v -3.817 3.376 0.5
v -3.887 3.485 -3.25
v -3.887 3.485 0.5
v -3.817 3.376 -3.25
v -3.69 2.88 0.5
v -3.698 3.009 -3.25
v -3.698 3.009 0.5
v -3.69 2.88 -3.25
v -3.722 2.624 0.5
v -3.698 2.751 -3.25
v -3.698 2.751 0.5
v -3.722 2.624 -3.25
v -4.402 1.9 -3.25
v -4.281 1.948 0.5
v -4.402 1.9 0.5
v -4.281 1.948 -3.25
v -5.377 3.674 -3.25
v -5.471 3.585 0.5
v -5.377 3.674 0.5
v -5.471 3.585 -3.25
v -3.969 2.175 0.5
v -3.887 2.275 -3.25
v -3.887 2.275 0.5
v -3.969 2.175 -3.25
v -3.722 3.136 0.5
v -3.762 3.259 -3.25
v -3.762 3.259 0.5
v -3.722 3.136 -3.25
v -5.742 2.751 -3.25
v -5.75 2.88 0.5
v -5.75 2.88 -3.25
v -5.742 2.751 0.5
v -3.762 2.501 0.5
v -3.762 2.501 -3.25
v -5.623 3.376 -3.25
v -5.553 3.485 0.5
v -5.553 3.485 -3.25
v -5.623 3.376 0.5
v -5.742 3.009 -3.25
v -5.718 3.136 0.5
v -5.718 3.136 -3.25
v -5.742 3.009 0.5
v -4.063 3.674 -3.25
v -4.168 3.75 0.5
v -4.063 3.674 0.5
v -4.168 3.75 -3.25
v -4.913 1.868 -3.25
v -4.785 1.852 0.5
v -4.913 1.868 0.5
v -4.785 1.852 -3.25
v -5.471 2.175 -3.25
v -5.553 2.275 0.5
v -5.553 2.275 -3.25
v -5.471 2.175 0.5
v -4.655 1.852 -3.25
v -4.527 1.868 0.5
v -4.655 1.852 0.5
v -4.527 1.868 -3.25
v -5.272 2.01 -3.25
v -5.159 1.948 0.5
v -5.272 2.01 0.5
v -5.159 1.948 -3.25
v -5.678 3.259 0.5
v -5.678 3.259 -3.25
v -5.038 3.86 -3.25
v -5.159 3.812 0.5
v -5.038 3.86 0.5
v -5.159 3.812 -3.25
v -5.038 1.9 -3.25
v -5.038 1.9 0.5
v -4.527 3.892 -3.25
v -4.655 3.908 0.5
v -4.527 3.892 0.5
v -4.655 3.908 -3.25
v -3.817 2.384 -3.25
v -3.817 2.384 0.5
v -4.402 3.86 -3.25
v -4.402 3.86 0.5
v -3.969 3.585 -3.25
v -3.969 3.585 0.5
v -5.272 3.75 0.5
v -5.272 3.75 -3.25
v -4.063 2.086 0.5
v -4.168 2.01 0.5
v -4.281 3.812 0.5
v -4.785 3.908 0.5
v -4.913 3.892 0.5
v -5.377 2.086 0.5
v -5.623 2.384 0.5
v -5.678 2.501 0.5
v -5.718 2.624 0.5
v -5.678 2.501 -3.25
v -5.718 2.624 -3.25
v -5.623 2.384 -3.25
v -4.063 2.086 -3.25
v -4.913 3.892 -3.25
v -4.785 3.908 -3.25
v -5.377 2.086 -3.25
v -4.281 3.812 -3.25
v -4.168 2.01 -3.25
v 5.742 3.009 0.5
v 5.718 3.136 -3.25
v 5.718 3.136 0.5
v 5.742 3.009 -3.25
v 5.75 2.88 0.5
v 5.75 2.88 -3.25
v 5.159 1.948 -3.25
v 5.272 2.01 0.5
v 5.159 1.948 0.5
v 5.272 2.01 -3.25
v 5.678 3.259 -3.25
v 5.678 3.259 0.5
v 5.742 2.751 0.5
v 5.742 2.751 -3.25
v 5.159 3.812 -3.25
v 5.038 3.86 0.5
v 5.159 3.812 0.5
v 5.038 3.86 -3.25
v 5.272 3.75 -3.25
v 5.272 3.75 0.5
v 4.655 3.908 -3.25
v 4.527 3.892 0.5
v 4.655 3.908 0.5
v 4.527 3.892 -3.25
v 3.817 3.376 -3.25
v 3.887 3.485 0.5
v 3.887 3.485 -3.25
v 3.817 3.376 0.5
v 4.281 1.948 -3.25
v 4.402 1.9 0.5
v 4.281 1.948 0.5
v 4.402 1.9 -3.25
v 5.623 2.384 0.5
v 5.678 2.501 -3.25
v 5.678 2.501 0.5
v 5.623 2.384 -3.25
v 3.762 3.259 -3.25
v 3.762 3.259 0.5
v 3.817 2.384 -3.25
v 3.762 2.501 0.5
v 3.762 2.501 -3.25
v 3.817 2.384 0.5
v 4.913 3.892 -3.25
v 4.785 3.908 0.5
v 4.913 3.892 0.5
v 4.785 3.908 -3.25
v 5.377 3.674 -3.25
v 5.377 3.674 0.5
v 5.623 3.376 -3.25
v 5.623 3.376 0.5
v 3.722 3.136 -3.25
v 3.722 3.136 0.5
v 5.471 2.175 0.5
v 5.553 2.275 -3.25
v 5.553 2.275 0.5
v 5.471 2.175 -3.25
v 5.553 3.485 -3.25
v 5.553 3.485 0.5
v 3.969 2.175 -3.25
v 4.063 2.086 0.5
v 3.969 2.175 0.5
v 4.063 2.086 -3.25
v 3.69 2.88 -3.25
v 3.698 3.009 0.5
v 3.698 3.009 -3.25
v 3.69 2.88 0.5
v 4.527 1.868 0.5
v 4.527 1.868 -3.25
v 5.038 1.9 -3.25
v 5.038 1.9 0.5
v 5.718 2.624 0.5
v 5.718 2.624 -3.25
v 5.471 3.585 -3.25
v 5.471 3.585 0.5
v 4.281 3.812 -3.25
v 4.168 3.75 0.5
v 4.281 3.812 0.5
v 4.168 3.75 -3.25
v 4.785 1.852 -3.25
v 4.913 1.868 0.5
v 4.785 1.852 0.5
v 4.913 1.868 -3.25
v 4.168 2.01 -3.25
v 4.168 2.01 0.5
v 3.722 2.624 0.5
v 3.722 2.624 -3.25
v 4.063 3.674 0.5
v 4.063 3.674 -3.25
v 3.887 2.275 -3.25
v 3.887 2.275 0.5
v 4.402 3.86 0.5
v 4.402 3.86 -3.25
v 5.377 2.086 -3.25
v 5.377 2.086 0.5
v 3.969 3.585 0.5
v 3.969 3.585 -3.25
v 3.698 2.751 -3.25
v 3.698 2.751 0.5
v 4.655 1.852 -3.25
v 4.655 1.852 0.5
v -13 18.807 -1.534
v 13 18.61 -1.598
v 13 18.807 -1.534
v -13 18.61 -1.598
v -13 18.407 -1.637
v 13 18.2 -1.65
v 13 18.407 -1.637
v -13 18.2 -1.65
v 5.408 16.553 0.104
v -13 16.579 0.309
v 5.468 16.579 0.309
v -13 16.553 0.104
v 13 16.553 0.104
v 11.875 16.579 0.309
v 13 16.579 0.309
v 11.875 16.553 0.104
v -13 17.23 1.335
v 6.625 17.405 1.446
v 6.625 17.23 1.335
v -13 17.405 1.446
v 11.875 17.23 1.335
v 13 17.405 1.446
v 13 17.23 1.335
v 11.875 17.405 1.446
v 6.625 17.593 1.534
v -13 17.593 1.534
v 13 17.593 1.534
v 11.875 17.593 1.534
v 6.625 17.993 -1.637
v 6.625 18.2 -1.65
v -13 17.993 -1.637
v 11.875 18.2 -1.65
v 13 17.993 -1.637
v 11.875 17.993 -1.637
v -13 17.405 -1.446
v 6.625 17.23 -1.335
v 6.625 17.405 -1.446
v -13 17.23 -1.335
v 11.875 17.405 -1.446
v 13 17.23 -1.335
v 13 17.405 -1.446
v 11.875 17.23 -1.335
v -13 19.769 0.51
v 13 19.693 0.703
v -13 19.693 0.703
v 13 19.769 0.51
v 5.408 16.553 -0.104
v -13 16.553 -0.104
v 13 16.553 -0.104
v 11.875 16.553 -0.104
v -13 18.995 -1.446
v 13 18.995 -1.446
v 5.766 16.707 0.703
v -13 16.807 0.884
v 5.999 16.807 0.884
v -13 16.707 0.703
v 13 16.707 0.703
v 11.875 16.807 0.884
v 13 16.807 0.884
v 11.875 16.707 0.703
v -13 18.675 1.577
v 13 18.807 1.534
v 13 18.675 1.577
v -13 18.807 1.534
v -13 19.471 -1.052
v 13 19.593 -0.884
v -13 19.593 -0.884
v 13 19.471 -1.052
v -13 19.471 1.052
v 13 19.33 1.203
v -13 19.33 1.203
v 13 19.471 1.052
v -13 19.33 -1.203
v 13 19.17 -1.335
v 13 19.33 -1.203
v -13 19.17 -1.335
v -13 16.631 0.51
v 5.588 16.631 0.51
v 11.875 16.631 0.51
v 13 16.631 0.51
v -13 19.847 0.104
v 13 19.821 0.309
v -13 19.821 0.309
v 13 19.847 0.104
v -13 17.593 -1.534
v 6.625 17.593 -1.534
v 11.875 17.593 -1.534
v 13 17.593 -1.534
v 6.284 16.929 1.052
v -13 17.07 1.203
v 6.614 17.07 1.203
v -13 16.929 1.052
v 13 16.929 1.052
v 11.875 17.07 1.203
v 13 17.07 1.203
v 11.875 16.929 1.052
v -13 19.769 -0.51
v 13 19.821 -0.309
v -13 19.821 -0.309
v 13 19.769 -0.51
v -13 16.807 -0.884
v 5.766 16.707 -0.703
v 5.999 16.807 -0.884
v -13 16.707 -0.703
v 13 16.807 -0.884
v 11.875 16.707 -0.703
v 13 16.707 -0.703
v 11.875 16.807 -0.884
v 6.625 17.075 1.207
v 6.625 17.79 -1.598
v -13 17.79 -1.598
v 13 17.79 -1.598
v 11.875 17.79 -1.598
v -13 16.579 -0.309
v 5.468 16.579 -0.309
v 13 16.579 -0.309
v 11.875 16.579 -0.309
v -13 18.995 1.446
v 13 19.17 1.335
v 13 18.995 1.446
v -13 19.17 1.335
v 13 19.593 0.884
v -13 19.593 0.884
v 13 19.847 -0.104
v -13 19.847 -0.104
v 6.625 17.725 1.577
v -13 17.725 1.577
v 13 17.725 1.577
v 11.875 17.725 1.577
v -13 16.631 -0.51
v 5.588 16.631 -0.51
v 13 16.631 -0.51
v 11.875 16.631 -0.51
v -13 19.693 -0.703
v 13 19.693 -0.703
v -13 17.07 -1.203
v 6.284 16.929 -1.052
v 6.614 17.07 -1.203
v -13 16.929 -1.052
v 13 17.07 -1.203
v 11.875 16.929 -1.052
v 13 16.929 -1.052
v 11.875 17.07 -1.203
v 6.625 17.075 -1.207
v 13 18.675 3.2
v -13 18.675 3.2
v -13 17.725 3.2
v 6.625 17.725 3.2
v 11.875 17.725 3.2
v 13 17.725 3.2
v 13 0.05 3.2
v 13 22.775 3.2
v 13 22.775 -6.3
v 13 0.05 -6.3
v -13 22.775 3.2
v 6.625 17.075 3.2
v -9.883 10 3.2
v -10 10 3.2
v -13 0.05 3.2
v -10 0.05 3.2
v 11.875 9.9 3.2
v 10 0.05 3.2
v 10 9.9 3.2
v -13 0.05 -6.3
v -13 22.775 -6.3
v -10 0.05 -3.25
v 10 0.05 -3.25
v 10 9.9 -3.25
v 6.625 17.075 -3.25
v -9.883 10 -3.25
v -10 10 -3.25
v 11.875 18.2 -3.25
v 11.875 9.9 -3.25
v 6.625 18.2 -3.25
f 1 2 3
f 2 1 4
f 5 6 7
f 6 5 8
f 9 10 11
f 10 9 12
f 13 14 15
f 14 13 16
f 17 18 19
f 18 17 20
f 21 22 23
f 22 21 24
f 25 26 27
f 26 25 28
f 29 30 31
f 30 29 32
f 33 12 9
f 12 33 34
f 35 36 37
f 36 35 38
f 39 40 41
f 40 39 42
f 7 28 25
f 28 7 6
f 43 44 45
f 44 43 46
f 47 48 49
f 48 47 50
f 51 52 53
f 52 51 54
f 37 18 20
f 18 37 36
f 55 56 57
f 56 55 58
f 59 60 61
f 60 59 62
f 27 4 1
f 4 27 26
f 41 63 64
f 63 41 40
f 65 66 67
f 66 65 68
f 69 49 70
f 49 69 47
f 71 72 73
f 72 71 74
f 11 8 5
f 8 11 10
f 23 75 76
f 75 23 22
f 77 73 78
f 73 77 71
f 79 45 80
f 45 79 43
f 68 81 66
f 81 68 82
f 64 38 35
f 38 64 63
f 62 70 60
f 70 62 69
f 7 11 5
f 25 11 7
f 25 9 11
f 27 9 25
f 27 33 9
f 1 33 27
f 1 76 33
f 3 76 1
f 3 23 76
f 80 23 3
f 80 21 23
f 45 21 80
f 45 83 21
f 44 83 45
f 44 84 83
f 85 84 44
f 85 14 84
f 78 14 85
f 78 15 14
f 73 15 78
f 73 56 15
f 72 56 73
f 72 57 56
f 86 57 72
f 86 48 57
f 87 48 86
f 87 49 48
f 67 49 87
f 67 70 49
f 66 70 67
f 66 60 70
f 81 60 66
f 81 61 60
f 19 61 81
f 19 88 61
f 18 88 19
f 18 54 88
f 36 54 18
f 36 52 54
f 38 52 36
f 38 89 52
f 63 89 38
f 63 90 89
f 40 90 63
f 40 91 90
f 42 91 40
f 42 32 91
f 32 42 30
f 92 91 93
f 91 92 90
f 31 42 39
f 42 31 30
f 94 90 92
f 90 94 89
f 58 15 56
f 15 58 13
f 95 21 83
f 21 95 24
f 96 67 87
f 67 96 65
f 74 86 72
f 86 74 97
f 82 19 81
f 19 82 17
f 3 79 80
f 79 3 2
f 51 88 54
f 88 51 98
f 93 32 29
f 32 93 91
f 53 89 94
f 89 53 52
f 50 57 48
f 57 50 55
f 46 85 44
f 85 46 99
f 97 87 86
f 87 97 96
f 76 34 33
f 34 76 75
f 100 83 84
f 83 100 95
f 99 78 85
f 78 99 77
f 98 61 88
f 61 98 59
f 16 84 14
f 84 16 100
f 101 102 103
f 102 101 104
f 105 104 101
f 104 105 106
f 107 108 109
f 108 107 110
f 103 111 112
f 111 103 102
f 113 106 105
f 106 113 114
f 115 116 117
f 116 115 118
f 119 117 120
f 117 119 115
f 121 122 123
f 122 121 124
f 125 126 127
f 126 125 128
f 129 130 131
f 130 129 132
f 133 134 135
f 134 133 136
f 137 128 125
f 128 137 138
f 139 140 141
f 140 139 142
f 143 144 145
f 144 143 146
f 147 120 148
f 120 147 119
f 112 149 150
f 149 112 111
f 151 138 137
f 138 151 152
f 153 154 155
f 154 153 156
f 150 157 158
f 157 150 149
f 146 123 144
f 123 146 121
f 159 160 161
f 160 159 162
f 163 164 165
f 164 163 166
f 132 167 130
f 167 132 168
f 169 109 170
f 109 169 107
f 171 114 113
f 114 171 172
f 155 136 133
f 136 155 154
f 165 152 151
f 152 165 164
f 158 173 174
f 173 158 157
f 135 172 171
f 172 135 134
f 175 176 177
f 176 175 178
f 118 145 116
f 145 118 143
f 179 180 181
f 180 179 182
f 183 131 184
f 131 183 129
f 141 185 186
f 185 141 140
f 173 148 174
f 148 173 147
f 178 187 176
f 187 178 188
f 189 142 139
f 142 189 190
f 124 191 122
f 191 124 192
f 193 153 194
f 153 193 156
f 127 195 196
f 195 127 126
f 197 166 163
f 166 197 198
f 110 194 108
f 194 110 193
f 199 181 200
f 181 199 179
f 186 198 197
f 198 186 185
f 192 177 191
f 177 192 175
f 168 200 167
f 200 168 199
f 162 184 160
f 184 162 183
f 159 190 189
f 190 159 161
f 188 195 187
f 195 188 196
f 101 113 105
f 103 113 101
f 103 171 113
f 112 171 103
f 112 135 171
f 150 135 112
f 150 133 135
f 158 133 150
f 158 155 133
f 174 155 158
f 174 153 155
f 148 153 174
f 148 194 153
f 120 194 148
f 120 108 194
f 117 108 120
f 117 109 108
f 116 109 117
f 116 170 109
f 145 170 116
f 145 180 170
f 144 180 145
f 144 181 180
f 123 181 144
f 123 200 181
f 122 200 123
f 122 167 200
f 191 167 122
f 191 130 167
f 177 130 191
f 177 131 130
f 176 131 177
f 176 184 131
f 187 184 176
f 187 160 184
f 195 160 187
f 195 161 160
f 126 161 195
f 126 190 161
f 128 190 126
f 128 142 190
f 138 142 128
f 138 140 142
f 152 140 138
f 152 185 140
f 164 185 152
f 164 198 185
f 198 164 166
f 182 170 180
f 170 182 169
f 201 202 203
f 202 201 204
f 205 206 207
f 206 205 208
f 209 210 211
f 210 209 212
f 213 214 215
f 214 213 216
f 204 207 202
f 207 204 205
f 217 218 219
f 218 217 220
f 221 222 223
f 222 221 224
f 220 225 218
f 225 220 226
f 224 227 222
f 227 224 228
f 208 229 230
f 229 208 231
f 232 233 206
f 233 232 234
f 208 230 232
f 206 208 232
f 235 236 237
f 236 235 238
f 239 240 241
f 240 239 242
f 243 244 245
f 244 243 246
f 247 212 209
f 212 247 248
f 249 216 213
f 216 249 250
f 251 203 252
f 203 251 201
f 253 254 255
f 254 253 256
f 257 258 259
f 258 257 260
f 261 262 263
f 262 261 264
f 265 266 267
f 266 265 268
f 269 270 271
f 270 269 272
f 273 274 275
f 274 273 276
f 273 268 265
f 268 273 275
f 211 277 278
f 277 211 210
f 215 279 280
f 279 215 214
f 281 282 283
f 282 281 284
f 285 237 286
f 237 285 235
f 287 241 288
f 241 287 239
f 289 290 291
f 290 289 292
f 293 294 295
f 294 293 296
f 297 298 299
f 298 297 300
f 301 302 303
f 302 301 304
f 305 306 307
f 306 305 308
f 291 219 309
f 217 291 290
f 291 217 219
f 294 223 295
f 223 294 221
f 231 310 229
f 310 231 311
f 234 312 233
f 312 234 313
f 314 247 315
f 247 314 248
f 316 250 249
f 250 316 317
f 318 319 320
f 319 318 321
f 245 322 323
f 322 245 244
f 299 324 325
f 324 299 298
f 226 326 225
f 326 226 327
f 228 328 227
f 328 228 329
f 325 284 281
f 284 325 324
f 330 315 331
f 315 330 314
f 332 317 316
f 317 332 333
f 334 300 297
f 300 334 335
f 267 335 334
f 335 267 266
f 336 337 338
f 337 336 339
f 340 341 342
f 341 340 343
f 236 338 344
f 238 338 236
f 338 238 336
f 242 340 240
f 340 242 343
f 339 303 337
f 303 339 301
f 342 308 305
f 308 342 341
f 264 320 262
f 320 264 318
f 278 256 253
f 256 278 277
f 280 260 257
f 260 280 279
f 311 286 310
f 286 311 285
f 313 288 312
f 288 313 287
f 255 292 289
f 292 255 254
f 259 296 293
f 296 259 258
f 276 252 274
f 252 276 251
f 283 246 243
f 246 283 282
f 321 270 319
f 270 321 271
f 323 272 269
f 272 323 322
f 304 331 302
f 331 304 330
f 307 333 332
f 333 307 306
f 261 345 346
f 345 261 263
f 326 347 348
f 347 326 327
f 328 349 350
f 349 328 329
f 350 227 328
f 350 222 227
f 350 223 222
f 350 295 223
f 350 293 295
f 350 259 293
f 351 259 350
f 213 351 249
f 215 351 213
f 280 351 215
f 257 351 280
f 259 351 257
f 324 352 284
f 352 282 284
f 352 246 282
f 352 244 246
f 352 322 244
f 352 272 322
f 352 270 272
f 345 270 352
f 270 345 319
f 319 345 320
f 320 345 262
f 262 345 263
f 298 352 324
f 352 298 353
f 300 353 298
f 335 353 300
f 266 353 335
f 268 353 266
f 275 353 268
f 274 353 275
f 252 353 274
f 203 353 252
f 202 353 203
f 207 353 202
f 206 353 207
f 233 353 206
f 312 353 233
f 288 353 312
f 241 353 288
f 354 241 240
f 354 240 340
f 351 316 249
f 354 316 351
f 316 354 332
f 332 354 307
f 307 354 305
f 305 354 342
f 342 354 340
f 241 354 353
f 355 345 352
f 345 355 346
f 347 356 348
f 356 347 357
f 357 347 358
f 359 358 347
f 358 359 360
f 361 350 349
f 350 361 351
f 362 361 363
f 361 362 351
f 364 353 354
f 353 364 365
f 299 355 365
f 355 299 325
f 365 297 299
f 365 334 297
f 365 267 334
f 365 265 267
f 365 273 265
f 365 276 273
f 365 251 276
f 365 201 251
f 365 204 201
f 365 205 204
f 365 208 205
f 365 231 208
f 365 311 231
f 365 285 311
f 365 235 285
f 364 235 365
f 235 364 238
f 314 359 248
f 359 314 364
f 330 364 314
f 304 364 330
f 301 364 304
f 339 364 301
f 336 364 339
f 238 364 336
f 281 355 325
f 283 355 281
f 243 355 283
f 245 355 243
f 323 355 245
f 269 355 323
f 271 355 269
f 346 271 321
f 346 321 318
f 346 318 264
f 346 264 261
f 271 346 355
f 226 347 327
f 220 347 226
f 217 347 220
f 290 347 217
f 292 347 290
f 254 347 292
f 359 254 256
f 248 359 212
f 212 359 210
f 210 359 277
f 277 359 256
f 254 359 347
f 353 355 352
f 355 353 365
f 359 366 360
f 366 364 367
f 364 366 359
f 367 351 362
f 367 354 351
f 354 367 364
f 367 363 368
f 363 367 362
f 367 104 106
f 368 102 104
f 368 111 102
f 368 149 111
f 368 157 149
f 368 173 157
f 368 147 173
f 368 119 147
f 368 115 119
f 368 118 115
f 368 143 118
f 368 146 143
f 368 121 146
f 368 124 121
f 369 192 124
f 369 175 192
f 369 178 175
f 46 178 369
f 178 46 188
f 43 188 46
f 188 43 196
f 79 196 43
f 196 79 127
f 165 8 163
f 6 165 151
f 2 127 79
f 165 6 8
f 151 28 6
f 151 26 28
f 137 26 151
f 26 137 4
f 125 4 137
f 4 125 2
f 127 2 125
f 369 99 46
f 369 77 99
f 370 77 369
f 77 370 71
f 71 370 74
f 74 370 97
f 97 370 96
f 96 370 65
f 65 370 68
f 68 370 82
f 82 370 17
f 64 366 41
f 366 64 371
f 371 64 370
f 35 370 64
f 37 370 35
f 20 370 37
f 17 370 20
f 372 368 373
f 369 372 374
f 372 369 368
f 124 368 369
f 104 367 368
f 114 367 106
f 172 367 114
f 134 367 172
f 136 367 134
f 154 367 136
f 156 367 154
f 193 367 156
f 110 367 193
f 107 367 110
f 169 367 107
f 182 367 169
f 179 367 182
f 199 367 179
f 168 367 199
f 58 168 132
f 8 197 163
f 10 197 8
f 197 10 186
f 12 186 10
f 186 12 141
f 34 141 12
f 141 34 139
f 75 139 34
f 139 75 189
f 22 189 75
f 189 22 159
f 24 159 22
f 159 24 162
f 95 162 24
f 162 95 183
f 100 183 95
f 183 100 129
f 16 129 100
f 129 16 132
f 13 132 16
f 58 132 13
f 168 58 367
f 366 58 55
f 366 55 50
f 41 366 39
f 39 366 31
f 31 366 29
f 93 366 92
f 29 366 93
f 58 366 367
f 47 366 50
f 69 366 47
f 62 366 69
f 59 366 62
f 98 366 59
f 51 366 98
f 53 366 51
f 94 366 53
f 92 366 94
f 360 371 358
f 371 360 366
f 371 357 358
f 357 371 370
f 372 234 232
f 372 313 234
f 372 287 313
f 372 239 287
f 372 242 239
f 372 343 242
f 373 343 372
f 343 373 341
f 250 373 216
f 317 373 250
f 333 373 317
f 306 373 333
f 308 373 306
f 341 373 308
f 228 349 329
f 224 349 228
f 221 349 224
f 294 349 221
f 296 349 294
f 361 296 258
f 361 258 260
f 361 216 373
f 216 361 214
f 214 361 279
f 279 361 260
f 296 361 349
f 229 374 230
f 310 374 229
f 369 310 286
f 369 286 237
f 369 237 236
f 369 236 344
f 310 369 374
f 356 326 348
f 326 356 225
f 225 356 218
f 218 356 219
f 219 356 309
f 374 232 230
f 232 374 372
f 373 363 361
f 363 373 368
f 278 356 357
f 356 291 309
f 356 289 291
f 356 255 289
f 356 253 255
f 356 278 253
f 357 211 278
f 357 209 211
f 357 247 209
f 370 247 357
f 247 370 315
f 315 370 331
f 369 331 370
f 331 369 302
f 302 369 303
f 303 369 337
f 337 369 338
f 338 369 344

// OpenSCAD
$fn = 50;

microswitch_body_width = 20;
microswitch_body_height = 10;
microswitch_body_thickness = 6.5;

microswitch_relaxed_wheel_height = 19.5;
microswitch_triggered_wheel_height = 18.2;
microswitch_compressed_wheel_height = 15.4;
microswitch_roller_diameter = 5; //4.65;
microswitch_roller_x = 21.5/2 + 1 - microswitch_roller_diameter/2;

microswitch_hole_diameter = 2.56;
microswitch_hole_distance_from_edge = 4.0 + microswitch_hole_diameter/2;
microswitch_hole_distance_from_bottom = 1.6 + microswitch_hole_diameter/2;
wall_thickness = 3;

filament_diameter = 2.85;
filament_tolerance = 0.45;

ptfe_diameter = 4;
ptfe_insertion_length = 2;

body_width = microswitch_body_width + 2*wall_thickness;
body_height = microswitch_triggered_wheel_height + filament_diameter/2 + wall_thickness;
filament_y = microswitch_triggered_wheel_height;
body_thickness = wall_thickness + microswitch_body_thickness;

module microswitch_body() {
  translate([
    0,
    microswitch_body_height/2,
    0,
  ])
  cube([
    microswitch_body_width,
    microswitch_body_height,
    microswitch_body_thickness
  ], center=true);
}

module microswitch_positioning_pins() {
  for (x = [
    -microswitch_body_width/2 + microswitch_hole_distance_from_edge,
    +microswitch_body_width/2 - microswitch_hole_distance_from_edge,
  ])
  translate([
    x,
    microswitch_hole_distance_from_bottom,
    -wall_thickness/2
  ])
  cylinder(
    d=microswitch_hole_diameter - 0.5,
    h=4,
    $fn=50,
    center=true
  );
}

module filament_path() {
  translate([0, filament_y, 0])
  rotate([0,90,0])
  union() {
    cylinder(
      d=filament_diameter + filament_tolerance,
      h=microswitch_body_width+2*wall_thickness+1,
      center=true
    );
    
    translate([-filament_diameter,0,0])
    cube([
      2*filament_diameter,
      filament_diameter/3,
      microswitch_body_width+2*wall_thickness+1
    ], center=true);
  }
}

module roller_path() {
  length = filament_y - microswitch_body_height + 0.1;

  translate([
    microswitch_roller_x,
    filament_y - length/2,
    0,
  ])
  cube([
    microswitch_roller_diameter + 0.25,
    length,
    microswitch_body_thickness
  ], center=true);
}

module arm_path() {
  linear_extrude(microswitch_body_thickness, center=true)
  polygon(points=[
    [ -microswitch_body_width/2, microswitch_body_height - 0.05 ],
    [ microswitch_roller_x, filament_y ],
    [ microswitch_roller_x, microswitch_body_height - 0.05 ]
  ]);
}

module filament_runout_sensor() {
  difference() {
    translate([
      0,
      body_height/2+0.1,
      -wall_thickness/2 - 0.05,
    ])
    cube([
      microswitch_body_width + 2*wall_thickness,
      body_height+0.1,
      body_thickness,
    ], center=true);

    microswitch_body();
    filament_path();
    roller_path();
    arm_path();
  }
  microswitch_positioning_pins();
}

filament_runout_sensor();
